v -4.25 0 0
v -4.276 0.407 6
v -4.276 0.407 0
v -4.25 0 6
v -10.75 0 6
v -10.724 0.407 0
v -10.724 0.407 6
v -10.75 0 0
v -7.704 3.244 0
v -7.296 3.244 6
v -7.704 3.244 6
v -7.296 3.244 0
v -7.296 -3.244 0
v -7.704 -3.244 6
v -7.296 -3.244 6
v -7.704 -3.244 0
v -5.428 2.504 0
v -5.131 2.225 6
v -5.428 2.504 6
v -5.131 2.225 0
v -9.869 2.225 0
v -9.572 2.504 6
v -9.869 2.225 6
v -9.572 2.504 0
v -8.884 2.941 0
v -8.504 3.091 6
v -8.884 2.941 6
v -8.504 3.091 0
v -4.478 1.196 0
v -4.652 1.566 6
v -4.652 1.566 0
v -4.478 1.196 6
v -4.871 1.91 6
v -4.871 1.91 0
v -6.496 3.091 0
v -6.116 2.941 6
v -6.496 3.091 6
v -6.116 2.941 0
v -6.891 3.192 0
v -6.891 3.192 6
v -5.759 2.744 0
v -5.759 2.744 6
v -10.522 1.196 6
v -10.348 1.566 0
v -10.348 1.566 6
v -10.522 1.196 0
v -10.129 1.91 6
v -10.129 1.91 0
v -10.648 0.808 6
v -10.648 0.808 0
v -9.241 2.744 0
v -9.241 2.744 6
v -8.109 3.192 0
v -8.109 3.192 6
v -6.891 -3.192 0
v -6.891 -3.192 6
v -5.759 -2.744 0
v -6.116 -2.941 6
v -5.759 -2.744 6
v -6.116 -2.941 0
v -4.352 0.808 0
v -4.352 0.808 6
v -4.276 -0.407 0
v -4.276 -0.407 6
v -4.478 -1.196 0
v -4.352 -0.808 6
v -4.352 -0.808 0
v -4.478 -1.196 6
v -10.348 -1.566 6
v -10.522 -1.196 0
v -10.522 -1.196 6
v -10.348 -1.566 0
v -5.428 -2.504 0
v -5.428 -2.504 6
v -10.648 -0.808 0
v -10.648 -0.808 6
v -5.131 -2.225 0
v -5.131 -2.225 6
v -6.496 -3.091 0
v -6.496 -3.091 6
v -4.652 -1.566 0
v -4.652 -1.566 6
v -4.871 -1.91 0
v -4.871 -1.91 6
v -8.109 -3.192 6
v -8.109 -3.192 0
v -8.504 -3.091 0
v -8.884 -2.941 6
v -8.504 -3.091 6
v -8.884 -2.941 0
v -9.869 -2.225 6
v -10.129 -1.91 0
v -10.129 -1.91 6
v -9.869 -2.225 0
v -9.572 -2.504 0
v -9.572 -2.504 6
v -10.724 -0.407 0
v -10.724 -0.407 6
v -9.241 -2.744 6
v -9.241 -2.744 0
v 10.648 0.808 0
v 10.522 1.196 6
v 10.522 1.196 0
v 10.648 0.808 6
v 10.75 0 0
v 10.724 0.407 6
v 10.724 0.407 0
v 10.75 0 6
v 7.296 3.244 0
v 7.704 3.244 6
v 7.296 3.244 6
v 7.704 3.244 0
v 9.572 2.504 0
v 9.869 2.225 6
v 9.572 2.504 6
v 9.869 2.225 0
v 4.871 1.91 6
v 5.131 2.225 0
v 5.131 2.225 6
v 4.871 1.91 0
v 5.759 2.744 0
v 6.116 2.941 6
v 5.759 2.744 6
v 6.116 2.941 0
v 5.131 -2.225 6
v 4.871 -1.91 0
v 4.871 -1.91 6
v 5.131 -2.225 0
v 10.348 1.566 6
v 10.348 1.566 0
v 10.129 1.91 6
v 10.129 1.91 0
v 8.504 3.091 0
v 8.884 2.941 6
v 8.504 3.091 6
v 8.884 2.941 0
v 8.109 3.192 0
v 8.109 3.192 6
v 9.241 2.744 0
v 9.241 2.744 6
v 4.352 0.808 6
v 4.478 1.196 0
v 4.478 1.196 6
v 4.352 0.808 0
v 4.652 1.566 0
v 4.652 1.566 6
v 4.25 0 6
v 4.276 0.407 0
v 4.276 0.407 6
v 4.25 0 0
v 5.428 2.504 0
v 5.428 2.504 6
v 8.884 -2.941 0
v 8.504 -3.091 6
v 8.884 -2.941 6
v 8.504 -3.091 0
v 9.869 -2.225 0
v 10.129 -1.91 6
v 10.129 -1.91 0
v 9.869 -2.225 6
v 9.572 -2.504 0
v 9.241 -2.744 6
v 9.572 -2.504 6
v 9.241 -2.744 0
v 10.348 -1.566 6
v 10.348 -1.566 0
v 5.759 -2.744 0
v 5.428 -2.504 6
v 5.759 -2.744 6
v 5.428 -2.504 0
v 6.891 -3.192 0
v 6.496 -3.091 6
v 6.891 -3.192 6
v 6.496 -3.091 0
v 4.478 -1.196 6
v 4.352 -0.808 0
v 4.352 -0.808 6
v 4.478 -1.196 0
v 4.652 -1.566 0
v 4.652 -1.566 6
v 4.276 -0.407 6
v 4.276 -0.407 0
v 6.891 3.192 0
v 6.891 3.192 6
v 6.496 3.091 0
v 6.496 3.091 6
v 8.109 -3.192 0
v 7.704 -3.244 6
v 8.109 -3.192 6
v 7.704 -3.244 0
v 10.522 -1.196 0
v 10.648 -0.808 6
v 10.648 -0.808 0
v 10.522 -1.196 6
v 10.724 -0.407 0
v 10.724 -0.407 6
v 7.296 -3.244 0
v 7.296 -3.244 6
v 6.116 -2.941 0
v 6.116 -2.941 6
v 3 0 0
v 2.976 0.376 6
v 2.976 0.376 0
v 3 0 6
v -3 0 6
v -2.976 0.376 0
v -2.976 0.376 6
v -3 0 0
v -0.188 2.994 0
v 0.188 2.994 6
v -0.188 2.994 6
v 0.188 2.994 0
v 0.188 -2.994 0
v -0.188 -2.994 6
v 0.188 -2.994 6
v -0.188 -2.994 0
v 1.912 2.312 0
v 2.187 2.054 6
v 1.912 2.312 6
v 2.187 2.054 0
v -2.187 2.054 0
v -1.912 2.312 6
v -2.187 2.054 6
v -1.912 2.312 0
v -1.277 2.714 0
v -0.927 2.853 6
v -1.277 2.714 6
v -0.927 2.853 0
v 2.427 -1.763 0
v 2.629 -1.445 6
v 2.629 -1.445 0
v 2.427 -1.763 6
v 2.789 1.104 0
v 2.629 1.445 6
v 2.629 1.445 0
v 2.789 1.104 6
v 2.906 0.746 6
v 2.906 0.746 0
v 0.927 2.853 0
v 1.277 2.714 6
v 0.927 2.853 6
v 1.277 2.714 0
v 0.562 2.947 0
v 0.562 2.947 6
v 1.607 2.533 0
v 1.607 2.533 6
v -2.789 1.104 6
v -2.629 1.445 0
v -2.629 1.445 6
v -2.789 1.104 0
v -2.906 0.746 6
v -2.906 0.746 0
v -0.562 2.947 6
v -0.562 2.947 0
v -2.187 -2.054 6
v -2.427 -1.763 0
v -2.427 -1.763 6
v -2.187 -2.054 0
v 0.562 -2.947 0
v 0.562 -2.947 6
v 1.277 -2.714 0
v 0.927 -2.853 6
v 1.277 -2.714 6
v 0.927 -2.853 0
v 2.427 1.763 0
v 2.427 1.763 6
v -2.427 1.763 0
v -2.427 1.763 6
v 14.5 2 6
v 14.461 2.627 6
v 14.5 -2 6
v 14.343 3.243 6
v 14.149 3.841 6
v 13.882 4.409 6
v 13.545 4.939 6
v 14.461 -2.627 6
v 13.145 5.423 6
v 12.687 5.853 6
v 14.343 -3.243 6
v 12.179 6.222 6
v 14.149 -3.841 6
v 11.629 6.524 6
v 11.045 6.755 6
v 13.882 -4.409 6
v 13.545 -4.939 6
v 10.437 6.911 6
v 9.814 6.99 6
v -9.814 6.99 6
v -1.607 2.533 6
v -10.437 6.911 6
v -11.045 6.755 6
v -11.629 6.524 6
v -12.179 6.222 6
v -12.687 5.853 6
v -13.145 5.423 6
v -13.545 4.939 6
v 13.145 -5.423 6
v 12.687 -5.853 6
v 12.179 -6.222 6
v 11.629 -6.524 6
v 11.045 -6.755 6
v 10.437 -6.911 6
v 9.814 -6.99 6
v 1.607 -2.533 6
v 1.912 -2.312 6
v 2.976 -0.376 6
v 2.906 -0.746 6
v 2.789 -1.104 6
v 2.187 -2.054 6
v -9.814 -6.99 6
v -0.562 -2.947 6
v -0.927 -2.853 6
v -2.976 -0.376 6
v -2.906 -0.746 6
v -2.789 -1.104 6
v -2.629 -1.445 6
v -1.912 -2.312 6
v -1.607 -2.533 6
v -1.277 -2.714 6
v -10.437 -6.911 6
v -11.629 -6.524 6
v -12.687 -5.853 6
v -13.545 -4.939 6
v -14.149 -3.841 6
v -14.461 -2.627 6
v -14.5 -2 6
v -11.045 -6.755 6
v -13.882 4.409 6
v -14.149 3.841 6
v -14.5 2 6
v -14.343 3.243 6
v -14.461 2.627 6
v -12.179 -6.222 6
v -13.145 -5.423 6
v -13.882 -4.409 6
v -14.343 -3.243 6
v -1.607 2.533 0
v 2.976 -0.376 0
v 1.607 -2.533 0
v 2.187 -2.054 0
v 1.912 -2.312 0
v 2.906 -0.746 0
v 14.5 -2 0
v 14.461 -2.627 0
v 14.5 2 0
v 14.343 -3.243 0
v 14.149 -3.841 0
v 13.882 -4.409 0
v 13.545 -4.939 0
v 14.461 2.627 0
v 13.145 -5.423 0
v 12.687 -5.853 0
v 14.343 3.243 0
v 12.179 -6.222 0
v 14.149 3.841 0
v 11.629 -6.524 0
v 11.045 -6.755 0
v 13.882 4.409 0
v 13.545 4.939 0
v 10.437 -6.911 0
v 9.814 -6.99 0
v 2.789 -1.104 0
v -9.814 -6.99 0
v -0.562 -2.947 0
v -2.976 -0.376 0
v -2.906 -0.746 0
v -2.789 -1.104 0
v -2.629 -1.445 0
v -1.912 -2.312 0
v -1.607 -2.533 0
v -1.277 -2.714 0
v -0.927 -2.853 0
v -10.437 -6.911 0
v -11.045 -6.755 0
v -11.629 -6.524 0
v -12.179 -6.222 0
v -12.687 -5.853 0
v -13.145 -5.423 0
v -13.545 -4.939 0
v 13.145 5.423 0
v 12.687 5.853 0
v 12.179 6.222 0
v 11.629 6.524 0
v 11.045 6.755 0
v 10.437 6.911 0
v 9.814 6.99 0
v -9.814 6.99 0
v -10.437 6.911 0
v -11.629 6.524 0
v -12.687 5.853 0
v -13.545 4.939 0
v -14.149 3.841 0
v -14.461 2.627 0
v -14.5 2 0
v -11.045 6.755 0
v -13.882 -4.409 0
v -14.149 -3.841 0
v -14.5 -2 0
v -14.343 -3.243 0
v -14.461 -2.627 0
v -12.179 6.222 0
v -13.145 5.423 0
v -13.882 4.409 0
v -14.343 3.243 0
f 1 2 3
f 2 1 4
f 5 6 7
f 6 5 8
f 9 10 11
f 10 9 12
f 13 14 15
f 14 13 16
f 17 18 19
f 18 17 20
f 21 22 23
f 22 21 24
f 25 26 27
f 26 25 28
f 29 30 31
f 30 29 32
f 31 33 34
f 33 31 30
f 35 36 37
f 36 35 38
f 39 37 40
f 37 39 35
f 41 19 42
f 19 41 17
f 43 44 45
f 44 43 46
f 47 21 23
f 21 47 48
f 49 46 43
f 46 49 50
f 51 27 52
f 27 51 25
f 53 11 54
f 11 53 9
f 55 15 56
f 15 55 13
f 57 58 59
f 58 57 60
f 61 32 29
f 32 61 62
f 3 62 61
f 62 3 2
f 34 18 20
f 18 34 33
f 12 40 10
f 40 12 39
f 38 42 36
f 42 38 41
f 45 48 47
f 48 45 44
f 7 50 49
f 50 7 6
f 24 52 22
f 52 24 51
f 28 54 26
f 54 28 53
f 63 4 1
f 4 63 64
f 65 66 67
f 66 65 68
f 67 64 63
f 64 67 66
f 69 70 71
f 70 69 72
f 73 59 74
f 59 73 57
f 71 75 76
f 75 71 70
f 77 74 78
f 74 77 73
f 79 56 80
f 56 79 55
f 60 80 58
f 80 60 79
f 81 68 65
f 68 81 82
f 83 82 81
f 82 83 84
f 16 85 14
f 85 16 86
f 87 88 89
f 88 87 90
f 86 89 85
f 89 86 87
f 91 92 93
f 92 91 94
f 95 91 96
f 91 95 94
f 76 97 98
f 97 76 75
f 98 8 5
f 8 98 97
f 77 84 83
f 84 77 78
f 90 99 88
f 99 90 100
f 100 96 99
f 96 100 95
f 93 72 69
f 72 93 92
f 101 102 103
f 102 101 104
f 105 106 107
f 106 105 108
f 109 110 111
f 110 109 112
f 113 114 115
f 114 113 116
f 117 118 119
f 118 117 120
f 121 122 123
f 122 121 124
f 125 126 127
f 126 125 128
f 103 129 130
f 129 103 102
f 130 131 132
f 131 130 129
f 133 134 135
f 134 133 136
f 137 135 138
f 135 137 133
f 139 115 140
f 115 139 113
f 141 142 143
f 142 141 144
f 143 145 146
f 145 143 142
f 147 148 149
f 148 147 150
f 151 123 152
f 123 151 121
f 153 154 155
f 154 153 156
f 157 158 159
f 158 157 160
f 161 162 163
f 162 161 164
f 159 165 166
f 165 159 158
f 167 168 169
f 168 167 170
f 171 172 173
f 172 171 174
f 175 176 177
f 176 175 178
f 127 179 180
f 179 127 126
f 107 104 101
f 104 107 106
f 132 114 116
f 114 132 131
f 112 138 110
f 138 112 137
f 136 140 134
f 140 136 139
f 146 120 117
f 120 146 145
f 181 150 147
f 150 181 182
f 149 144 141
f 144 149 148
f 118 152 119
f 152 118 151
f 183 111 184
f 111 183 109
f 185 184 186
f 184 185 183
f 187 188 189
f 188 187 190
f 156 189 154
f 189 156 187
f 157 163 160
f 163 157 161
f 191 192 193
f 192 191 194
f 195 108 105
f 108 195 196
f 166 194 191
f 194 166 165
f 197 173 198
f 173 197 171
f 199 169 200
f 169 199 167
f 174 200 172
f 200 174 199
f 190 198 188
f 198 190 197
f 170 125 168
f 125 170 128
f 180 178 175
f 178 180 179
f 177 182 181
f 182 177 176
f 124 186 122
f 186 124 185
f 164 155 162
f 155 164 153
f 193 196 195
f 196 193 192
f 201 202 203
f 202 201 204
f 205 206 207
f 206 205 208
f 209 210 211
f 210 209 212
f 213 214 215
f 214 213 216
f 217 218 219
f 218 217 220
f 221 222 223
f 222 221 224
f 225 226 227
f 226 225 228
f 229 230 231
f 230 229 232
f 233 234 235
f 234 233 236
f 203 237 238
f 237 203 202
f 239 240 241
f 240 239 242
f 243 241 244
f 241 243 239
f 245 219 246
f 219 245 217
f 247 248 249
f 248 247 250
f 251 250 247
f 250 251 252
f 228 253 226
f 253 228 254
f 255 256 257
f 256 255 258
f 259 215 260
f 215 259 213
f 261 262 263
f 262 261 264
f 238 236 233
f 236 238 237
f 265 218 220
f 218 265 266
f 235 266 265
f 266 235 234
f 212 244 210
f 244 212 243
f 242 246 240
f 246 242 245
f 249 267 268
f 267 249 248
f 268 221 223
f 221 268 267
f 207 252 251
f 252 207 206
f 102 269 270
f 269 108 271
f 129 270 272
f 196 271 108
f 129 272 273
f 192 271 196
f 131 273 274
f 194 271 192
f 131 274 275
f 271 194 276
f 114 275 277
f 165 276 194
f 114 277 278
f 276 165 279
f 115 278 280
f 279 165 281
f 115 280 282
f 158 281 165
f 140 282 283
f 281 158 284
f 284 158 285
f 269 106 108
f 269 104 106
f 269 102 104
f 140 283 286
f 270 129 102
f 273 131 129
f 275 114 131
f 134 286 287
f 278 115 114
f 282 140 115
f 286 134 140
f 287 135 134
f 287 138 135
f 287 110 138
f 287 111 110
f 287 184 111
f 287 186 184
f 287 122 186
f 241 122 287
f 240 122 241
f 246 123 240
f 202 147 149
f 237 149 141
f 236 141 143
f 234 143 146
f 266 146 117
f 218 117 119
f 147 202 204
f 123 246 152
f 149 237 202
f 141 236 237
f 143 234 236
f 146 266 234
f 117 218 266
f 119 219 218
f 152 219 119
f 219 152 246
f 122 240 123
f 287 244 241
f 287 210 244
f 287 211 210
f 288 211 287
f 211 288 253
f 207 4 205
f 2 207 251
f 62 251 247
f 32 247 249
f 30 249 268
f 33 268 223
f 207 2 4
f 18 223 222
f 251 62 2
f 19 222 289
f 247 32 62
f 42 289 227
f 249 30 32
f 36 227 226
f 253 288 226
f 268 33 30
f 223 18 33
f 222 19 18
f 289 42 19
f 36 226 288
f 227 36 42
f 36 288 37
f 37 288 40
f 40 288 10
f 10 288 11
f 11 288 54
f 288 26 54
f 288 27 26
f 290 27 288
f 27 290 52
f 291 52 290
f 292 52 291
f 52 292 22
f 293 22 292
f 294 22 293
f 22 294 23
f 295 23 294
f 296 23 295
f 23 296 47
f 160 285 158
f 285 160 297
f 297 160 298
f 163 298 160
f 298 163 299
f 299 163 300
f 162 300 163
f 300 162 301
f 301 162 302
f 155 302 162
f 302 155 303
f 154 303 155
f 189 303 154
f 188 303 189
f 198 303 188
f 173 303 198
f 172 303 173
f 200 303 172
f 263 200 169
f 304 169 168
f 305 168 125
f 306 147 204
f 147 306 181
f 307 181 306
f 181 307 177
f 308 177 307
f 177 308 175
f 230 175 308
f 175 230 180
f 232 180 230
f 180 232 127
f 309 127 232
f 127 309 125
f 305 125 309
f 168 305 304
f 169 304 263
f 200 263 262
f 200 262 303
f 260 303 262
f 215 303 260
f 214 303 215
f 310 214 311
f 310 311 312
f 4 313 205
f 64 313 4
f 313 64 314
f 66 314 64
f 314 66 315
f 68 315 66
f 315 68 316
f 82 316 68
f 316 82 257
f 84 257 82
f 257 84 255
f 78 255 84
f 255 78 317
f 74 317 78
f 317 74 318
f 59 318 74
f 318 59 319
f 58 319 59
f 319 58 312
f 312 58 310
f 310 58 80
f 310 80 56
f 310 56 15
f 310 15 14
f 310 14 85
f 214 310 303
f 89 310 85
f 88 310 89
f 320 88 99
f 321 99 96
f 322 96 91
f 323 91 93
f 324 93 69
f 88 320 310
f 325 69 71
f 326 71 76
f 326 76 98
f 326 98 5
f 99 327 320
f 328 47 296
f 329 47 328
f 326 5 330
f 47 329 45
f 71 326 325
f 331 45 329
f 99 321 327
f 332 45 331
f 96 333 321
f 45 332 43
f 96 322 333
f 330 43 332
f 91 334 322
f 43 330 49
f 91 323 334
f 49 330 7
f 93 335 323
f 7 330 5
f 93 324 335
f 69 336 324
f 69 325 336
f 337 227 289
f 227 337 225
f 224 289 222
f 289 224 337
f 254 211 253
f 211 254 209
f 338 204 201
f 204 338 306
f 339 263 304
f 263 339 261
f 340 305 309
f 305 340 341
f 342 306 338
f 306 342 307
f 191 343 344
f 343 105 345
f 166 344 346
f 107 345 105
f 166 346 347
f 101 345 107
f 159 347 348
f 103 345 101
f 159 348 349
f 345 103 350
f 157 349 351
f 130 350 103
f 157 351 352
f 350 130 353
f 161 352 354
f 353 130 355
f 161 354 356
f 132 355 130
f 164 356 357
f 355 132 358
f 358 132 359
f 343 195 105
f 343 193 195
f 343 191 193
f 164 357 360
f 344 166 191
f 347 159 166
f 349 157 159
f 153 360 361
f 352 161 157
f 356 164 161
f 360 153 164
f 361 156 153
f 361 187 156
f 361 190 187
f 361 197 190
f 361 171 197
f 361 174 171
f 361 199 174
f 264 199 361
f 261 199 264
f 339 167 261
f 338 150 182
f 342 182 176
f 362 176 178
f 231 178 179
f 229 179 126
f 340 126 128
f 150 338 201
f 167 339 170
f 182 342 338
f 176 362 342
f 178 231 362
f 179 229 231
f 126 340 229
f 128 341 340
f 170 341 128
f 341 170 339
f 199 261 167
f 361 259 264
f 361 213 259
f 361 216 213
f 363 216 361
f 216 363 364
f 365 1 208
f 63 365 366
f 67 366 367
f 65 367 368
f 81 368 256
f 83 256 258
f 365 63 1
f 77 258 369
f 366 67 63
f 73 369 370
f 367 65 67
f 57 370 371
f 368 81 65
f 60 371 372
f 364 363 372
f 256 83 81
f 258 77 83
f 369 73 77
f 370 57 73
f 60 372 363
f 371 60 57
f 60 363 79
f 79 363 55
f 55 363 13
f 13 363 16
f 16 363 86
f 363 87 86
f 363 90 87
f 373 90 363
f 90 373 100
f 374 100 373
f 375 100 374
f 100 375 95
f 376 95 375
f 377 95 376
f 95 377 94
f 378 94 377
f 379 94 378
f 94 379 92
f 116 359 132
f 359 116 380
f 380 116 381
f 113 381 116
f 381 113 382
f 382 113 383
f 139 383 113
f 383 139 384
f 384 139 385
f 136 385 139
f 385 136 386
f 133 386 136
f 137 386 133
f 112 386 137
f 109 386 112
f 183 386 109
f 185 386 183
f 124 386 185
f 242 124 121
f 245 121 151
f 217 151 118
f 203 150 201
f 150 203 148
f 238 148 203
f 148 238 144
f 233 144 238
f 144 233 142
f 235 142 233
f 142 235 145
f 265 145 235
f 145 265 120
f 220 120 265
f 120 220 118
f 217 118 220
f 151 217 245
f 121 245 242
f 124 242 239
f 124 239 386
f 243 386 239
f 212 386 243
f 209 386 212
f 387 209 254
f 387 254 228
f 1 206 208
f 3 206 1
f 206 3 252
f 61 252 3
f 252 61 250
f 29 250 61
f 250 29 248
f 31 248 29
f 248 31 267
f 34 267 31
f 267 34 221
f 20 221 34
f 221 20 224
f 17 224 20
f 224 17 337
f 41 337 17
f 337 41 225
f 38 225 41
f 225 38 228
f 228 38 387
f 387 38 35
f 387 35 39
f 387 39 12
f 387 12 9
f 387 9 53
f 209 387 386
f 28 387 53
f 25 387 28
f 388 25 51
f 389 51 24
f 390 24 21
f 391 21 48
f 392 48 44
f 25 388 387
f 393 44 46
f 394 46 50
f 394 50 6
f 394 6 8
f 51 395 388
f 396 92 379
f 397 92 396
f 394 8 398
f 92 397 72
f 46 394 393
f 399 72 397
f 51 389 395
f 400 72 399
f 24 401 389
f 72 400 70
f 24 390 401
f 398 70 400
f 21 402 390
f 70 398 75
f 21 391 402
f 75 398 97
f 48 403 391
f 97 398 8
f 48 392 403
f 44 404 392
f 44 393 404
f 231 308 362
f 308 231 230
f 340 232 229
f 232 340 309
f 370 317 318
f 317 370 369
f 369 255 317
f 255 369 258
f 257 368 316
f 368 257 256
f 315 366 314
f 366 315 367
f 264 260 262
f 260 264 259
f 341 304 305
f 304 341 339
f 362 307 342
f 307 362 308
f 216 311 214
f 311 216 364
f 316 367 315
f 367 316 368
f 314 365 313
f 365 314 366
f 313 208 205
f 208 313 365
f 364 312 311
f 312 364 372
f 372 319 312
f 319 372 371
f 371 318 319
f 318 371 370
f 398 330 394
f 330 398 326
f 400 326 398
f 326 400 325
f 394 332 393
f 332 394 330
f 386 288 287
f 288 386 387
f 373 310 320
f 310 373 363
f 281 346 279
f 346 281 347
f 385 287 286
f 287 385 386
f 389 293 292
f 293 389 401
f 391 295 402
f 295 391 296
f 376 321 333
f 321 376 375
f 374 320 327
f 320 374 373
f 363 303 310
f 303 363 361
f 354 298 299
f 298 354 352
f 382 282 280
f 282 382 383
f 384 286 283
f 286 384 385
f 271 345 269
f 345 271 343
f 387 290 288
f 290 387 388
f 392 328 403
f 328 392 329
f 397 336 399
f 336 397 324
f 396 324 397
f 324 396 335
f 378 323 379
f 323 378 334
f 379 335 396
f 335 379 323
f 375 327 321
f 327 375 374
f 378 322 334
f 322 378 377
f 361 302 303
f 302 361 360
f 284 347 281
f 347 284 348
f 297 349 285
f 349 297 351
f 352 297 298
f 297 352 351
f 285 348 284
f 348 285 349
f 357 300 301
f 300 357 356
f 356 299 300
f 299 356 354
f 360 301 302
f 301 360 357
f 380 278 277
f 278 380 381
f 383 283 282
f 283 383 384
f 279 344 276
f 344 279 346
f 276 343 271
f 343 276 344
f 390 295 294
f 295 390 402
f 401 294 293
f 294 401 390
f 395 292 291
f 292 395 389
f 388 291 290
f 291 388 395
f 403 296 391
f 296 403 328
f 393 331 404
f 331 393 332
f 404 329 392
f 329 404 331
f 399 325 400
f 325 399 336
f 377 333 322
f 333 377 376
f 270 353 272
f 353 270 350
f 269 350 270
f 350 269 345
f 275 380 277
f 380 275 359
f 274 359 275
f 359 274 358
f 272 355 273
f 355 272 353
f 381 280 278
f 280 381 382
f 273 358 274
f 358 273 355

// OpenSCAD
$fn = 50;


difference() {
	union() {
		hull() {
			translate(v = [-9.5000000000, 2.0000000000, 0]) {
				cylinder(h = 6, r = 5);
			}
			translate(v = [9.5000000000, 2.0000000000, 0]) {
				cylinder(h = 6, r = 5);
			}
			translate(v = [-9.5000000000, -2.0000000000, 0]) {
				cylinder(h = 6, r = 5);
			}
			translate(v = [9.5000000000, -2.0000000000, 0]) {
				cylinder(h = 6, r = 5);
			}
		}
	}
	union() {
		#translate(v = [-7.5000000000, 0.0000000000, 0]) {
			cylinder(h = 6, r = 3.2500000000);
		}
		#translate(v = [7.5000000000, 0.0000000000, 0]) {
			cylinder(h = 6, r = 3.2500000000);
		}
		#translate(v = [-7.5000000000, 0.0000000000, -100.0000000000]) {
			cylinder(h = 200, r = 3.2500000000);
		}
		#translate(v = [-7.5000000000, 0.0000000000, -100.0000000000]) {
			cylinder(h = 200, r = 3.2500000000);
		}
		#translate(v = [7.5000000000, 0.0000000000, -100.0000000000]) {
			cylinder(h = 200, r = 3.2500000000);
		}
		#translate(v = [7.5000000000, 0.0000000000, -100.0000000000]) {
			cylinder(h = 200, r = 3.2500000000);
		}
		#translate(v = [-7.5000000000, 0.0000000000, 0]) {
			cylinder(h = 6, r = 1.8000000000);
		}
		#translate(v = [7.5000000000, 0.0000000000, 0]) {
			cylinder(h = 6, r = 1.8000000000);
		}
		#translate(v = [-7.5000000000, 0.0000000000, 0]) {
			cylinder(h = 6, r = 1.8000000000);
		}
		#translate(v = [7.5000000000, 0.0000000000, 0]) {
			cylinder(h = 6, r = 1.8000000000);
		}
		#translate(v = [-7.5000000000, 0.0000000000, 0]) {
			cylinder(h = 6, r = 1.8000000000);
		}
		#translate(v = [7.5000000000, 0.0000000000, 0]) {
			cylinder(h = 6, r = 1.8000000000);
		}
		#cylinder(h = 6, r = 3.0000000000);
	}
}
